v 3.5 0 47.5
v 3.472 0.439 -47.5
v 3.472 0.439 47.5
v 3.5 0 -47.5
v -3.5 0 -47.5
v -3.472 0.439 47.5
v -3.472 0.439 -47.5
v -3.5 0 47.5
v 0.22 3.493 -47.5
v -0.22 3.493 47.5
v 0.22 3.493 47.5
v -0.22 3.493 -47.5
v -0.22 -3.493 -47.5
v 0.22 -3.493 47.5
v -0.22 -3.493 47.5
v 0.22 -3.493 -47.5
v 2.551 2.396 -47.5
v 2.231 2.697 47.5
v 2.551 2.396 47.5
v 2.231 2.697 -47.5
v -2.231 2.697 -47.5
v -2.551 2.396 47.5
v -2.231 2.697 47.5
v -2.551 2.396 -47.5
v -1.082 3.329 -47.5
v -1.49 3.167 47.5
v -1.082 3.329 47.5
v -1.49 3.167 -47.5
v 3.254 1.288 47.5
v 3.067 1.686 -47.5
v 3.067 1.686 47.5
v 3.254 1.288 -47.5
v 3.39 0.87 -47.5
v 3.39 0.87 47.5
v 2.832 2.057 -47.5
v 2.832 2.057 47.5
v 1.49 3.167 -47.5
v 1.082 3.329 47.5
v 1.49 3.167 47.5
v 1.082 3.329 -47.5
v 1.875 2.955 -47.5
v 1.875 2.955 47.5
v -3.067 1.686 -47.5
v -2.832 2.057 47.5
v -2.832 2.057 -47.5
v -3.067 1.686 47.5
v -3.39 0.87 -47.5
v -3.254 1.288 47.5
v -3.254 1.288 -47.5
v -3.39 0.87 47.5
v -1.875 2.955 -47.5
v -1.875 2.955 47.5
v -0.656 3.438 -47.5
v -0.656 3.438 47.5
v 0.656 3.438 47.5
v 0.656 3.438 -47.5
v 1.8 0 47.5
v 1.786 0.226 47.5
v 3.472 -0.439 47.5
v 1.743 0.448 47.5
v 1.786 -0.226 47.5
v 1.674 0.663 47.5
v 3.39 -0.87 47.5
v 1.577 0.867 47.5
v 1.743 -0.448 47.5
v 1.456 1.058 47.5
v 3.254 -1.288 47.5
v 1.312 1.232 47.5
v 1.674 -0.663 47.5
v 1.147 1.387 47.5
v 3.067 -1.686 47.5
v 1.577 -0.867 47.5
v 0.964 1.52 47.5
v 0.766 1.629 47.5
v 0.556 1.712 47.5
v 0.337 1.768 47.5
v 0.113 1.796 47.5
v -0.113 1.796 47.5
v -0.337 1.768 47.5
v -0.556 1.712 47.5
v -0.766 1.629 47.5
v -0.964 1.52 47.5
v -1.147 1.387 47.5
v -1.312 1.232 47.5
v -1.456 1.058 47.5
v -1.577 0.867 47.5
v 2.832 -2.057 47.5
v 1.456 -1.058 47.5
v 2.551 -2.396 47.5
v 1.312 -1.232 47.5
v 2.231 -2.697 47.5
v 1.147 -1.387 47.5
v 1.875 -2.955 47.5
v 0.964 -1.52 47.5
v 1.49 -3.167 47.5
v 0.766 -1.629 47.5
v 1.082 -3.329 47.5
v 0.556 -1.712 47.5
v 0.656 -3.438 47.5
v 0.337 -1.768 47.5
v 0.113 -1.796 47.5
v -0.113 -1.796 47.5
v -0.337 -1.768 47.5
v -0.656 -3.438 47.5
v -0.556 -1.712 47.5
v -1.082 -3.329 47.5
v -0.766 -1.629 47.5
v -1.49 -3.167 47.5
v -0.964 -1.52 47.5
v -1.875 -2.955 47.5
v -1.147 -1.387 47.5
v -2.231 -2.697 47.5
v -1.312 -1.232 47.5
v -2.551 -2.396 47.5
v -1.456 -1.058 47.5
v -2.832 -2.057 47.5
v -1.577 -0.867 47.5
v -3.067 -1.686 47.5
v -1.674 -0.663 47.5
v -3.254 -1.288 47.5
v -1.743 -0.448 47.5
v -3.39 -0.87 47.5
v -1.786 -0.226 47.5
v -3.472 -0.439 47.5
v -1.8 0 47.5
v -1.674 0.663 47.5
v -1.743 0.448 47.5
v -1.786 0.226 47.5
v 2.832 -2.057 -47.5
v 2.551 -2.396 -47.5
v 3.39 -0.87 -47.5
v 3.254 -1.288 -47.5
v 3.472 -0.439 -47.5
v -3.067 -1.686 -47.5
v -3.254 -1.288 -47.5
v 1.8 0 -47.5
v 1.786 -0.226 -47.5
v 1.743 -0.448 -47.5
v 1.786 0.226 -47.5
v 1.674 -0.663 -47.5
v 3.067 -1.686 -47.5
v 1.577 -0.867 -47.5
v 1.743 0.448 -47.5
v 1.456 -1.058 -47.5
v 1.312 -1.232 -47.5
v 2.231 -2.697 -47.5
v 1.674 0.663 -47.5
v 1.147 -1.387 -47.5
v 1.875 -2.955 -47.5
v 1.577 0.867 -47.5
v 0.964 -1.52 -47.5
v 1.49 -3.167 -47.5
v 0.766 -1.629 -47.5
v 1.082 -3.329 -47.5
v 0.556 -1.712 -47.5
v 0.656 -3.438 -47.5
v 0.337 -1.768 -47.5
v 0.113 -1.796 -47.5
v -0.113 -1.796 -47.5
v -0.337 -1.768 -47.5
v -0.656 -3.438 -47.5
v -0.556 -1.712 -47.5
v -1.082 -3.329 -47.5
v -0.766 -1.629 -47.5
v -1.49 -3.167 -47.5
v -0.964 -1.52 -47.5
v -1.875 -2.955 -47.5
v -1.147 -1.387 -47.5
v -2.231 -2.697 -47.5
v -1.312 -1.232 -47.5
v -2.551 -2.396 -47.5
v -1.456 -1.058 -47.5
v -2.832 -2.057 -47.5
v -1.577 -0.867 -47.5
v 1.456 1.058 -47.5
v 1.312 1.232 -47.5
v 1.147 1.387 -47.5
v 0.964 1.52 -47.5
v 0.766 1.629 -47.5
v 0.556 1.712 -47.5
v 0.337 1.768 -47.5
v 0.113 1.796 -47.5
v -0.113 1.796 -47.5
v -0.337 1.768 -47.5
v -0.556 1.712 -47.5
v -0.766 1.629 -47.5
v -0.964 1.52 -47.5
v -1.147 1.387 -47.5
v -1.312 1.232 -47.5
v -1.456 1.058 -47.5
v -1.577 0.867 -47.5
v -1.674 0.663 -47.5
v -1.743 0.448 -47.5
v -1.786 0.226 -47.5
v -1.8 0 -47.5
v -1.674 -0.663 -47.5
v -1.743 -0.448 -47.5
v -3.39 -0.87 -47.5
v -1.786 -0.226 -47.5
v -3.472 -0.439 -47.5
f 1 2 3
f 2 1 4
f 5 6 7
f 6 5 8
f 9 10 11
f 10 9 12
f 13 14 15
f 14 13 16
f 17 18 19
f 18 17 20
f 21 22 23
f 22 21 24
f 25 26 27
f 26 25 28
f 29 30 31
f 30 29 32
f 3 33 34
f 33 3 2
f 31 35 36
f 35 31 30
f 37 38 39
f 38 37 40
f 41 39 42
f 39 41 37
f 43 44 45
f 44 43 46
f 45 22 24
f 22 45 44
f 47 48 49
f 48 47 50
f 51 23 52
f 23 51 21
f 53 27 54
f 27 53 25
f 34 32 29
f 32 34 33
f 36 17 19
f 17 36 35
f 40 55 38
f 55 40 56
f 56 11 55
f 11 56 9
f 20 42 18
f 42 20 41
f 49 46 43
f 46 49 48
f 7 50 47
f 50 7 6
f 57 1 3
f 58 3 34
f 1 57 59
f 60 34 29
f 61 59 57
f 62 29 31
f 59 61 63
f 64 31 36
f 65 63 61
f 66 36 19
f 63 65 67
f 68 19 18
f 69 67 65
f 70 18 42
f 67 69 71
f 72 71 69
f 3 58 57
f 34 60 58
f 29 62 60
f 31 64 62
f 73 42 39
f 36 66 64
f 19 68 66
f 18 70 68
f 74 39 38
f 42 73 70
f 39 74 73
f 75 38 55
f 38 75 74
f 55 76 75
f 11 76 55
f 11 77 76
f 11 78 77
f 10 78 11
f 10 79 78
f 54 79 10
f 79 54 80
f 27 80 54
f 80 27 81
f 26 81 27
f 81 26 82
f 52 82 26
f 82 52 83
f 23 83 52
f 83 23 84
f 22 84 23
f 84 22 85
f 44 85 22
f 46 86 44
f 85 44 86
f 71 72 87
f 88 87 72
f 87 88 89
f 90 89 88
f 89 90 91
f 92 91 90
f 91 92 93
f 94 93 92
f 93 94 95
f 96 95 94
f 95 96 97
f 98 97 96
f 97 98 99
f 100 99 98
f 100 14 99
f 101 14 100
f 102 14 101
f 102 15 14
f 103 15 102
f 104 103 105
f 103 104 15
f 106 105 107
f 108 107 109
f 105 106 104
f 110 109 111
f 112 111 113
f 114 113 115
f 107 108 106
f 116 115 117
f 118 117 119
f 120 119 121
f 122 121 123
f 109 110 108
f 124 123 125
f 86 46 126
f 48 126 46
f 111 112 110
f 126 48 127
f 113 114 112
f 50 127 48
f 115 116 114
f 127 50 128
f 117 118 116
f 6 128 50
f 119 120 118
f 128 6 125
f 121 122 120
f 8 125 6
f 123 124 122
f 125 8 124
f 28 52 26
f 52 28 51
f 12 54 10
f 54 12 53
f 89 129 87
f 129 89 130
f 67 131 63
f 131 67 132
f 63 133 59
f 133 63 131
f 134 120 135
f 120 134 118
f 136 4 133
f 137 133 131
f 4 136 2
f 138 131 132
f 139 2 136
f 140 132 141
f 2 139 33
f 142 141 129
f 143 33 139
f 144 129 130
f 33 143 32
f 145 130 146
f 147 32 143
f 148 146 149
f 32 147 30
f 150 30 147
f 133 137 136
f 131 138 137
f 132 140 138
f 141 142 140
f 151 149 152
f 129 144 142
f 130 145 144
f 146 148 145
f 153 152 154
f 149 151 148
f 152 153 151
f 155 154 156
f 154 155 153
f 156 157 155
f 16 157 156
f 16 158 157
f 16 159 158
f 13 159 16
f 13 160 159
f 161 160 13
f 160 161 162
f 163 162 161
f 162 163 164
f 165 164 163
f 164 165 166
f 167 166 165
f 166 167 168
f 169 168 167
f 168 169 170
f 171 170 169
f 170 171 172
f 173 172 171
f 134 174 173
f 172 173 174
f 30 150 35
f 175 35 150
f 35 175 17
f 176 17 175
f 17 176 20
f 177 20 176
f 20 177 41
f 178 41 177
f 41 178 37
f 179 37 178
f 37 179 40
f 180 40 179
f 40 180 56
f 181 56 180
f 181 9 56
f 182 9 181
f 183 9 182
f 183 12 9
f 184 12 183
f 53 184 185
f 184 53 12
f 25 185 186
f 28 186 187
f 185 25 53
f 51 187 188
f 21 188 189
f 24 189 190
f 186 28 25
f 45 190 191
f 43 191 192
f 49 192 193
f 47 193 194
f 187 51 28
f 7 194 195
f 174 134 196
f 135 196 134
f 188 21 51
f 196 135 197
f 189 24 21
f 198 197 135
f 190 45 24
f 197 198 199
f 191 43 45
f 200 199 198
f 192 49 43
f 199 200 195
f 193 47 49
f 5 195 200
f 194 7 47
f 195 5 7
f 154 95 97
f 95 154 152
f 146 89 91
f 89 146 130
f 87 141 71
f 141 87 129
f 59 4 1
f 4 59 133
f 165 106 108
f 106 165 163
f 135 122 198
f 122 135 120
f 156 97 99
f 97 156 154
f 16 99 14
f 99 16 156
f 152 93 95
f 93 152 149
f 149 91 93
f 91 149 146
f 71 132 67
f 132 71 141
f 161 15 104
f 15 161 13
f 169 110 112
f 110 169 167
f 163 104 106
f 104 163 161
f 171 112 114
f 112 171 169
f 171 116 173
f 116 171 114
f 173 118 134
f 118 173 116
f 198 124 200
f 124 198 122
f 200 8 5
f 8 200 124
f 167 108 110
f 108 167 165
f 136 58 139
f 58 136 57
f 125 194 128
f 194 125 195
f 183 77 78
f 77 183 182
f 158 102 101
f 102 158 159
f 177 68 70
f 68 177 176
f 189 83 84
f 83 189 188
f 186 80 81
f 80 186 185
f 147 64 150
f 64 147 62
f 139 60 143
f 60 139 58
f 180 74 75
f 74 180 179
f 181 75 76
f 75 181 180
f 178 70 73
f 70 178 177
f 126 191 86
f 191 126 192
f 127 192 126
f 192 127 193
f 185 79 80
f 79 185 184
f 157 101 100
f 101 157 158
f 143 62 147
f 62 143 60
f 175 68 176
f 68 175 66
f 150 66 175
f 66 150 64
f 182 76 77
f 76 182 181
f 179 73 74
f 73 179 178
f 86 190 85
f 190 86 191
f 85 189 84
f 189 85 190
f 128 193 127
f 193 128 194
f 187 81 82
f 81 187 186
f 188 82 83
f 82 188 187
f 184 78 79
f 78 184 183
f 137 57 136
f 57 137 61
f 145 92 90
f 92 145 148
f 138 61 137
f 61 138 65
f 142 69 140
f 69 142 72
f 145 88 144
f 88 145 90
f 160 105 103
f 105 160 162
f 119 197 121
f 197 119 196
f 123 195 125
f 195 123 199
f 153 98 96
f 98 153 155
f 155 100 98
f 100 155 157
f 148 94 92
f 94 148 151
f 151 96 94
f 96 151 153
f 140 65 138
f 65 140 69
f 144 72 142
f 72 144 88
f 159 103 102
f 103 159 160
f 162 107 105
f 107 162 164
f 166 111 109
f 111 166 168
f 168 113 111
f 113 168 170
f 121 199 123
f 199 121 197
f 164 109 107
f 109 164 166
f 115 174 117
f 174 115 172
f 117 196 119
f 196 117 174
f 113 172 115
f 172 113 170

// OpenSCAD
$fn = 50;


difference() {
	union() {
		translate(v = [0, 0, -47.5000000000]) {
			cylinder(h = 95, r = 3.5000000000);
		}
	}
	union() {
		translate(v = [0, 0, -100.0000000000]) {
			cylinder(h = 200, r = 1.8000000000);
		}
	}
}
